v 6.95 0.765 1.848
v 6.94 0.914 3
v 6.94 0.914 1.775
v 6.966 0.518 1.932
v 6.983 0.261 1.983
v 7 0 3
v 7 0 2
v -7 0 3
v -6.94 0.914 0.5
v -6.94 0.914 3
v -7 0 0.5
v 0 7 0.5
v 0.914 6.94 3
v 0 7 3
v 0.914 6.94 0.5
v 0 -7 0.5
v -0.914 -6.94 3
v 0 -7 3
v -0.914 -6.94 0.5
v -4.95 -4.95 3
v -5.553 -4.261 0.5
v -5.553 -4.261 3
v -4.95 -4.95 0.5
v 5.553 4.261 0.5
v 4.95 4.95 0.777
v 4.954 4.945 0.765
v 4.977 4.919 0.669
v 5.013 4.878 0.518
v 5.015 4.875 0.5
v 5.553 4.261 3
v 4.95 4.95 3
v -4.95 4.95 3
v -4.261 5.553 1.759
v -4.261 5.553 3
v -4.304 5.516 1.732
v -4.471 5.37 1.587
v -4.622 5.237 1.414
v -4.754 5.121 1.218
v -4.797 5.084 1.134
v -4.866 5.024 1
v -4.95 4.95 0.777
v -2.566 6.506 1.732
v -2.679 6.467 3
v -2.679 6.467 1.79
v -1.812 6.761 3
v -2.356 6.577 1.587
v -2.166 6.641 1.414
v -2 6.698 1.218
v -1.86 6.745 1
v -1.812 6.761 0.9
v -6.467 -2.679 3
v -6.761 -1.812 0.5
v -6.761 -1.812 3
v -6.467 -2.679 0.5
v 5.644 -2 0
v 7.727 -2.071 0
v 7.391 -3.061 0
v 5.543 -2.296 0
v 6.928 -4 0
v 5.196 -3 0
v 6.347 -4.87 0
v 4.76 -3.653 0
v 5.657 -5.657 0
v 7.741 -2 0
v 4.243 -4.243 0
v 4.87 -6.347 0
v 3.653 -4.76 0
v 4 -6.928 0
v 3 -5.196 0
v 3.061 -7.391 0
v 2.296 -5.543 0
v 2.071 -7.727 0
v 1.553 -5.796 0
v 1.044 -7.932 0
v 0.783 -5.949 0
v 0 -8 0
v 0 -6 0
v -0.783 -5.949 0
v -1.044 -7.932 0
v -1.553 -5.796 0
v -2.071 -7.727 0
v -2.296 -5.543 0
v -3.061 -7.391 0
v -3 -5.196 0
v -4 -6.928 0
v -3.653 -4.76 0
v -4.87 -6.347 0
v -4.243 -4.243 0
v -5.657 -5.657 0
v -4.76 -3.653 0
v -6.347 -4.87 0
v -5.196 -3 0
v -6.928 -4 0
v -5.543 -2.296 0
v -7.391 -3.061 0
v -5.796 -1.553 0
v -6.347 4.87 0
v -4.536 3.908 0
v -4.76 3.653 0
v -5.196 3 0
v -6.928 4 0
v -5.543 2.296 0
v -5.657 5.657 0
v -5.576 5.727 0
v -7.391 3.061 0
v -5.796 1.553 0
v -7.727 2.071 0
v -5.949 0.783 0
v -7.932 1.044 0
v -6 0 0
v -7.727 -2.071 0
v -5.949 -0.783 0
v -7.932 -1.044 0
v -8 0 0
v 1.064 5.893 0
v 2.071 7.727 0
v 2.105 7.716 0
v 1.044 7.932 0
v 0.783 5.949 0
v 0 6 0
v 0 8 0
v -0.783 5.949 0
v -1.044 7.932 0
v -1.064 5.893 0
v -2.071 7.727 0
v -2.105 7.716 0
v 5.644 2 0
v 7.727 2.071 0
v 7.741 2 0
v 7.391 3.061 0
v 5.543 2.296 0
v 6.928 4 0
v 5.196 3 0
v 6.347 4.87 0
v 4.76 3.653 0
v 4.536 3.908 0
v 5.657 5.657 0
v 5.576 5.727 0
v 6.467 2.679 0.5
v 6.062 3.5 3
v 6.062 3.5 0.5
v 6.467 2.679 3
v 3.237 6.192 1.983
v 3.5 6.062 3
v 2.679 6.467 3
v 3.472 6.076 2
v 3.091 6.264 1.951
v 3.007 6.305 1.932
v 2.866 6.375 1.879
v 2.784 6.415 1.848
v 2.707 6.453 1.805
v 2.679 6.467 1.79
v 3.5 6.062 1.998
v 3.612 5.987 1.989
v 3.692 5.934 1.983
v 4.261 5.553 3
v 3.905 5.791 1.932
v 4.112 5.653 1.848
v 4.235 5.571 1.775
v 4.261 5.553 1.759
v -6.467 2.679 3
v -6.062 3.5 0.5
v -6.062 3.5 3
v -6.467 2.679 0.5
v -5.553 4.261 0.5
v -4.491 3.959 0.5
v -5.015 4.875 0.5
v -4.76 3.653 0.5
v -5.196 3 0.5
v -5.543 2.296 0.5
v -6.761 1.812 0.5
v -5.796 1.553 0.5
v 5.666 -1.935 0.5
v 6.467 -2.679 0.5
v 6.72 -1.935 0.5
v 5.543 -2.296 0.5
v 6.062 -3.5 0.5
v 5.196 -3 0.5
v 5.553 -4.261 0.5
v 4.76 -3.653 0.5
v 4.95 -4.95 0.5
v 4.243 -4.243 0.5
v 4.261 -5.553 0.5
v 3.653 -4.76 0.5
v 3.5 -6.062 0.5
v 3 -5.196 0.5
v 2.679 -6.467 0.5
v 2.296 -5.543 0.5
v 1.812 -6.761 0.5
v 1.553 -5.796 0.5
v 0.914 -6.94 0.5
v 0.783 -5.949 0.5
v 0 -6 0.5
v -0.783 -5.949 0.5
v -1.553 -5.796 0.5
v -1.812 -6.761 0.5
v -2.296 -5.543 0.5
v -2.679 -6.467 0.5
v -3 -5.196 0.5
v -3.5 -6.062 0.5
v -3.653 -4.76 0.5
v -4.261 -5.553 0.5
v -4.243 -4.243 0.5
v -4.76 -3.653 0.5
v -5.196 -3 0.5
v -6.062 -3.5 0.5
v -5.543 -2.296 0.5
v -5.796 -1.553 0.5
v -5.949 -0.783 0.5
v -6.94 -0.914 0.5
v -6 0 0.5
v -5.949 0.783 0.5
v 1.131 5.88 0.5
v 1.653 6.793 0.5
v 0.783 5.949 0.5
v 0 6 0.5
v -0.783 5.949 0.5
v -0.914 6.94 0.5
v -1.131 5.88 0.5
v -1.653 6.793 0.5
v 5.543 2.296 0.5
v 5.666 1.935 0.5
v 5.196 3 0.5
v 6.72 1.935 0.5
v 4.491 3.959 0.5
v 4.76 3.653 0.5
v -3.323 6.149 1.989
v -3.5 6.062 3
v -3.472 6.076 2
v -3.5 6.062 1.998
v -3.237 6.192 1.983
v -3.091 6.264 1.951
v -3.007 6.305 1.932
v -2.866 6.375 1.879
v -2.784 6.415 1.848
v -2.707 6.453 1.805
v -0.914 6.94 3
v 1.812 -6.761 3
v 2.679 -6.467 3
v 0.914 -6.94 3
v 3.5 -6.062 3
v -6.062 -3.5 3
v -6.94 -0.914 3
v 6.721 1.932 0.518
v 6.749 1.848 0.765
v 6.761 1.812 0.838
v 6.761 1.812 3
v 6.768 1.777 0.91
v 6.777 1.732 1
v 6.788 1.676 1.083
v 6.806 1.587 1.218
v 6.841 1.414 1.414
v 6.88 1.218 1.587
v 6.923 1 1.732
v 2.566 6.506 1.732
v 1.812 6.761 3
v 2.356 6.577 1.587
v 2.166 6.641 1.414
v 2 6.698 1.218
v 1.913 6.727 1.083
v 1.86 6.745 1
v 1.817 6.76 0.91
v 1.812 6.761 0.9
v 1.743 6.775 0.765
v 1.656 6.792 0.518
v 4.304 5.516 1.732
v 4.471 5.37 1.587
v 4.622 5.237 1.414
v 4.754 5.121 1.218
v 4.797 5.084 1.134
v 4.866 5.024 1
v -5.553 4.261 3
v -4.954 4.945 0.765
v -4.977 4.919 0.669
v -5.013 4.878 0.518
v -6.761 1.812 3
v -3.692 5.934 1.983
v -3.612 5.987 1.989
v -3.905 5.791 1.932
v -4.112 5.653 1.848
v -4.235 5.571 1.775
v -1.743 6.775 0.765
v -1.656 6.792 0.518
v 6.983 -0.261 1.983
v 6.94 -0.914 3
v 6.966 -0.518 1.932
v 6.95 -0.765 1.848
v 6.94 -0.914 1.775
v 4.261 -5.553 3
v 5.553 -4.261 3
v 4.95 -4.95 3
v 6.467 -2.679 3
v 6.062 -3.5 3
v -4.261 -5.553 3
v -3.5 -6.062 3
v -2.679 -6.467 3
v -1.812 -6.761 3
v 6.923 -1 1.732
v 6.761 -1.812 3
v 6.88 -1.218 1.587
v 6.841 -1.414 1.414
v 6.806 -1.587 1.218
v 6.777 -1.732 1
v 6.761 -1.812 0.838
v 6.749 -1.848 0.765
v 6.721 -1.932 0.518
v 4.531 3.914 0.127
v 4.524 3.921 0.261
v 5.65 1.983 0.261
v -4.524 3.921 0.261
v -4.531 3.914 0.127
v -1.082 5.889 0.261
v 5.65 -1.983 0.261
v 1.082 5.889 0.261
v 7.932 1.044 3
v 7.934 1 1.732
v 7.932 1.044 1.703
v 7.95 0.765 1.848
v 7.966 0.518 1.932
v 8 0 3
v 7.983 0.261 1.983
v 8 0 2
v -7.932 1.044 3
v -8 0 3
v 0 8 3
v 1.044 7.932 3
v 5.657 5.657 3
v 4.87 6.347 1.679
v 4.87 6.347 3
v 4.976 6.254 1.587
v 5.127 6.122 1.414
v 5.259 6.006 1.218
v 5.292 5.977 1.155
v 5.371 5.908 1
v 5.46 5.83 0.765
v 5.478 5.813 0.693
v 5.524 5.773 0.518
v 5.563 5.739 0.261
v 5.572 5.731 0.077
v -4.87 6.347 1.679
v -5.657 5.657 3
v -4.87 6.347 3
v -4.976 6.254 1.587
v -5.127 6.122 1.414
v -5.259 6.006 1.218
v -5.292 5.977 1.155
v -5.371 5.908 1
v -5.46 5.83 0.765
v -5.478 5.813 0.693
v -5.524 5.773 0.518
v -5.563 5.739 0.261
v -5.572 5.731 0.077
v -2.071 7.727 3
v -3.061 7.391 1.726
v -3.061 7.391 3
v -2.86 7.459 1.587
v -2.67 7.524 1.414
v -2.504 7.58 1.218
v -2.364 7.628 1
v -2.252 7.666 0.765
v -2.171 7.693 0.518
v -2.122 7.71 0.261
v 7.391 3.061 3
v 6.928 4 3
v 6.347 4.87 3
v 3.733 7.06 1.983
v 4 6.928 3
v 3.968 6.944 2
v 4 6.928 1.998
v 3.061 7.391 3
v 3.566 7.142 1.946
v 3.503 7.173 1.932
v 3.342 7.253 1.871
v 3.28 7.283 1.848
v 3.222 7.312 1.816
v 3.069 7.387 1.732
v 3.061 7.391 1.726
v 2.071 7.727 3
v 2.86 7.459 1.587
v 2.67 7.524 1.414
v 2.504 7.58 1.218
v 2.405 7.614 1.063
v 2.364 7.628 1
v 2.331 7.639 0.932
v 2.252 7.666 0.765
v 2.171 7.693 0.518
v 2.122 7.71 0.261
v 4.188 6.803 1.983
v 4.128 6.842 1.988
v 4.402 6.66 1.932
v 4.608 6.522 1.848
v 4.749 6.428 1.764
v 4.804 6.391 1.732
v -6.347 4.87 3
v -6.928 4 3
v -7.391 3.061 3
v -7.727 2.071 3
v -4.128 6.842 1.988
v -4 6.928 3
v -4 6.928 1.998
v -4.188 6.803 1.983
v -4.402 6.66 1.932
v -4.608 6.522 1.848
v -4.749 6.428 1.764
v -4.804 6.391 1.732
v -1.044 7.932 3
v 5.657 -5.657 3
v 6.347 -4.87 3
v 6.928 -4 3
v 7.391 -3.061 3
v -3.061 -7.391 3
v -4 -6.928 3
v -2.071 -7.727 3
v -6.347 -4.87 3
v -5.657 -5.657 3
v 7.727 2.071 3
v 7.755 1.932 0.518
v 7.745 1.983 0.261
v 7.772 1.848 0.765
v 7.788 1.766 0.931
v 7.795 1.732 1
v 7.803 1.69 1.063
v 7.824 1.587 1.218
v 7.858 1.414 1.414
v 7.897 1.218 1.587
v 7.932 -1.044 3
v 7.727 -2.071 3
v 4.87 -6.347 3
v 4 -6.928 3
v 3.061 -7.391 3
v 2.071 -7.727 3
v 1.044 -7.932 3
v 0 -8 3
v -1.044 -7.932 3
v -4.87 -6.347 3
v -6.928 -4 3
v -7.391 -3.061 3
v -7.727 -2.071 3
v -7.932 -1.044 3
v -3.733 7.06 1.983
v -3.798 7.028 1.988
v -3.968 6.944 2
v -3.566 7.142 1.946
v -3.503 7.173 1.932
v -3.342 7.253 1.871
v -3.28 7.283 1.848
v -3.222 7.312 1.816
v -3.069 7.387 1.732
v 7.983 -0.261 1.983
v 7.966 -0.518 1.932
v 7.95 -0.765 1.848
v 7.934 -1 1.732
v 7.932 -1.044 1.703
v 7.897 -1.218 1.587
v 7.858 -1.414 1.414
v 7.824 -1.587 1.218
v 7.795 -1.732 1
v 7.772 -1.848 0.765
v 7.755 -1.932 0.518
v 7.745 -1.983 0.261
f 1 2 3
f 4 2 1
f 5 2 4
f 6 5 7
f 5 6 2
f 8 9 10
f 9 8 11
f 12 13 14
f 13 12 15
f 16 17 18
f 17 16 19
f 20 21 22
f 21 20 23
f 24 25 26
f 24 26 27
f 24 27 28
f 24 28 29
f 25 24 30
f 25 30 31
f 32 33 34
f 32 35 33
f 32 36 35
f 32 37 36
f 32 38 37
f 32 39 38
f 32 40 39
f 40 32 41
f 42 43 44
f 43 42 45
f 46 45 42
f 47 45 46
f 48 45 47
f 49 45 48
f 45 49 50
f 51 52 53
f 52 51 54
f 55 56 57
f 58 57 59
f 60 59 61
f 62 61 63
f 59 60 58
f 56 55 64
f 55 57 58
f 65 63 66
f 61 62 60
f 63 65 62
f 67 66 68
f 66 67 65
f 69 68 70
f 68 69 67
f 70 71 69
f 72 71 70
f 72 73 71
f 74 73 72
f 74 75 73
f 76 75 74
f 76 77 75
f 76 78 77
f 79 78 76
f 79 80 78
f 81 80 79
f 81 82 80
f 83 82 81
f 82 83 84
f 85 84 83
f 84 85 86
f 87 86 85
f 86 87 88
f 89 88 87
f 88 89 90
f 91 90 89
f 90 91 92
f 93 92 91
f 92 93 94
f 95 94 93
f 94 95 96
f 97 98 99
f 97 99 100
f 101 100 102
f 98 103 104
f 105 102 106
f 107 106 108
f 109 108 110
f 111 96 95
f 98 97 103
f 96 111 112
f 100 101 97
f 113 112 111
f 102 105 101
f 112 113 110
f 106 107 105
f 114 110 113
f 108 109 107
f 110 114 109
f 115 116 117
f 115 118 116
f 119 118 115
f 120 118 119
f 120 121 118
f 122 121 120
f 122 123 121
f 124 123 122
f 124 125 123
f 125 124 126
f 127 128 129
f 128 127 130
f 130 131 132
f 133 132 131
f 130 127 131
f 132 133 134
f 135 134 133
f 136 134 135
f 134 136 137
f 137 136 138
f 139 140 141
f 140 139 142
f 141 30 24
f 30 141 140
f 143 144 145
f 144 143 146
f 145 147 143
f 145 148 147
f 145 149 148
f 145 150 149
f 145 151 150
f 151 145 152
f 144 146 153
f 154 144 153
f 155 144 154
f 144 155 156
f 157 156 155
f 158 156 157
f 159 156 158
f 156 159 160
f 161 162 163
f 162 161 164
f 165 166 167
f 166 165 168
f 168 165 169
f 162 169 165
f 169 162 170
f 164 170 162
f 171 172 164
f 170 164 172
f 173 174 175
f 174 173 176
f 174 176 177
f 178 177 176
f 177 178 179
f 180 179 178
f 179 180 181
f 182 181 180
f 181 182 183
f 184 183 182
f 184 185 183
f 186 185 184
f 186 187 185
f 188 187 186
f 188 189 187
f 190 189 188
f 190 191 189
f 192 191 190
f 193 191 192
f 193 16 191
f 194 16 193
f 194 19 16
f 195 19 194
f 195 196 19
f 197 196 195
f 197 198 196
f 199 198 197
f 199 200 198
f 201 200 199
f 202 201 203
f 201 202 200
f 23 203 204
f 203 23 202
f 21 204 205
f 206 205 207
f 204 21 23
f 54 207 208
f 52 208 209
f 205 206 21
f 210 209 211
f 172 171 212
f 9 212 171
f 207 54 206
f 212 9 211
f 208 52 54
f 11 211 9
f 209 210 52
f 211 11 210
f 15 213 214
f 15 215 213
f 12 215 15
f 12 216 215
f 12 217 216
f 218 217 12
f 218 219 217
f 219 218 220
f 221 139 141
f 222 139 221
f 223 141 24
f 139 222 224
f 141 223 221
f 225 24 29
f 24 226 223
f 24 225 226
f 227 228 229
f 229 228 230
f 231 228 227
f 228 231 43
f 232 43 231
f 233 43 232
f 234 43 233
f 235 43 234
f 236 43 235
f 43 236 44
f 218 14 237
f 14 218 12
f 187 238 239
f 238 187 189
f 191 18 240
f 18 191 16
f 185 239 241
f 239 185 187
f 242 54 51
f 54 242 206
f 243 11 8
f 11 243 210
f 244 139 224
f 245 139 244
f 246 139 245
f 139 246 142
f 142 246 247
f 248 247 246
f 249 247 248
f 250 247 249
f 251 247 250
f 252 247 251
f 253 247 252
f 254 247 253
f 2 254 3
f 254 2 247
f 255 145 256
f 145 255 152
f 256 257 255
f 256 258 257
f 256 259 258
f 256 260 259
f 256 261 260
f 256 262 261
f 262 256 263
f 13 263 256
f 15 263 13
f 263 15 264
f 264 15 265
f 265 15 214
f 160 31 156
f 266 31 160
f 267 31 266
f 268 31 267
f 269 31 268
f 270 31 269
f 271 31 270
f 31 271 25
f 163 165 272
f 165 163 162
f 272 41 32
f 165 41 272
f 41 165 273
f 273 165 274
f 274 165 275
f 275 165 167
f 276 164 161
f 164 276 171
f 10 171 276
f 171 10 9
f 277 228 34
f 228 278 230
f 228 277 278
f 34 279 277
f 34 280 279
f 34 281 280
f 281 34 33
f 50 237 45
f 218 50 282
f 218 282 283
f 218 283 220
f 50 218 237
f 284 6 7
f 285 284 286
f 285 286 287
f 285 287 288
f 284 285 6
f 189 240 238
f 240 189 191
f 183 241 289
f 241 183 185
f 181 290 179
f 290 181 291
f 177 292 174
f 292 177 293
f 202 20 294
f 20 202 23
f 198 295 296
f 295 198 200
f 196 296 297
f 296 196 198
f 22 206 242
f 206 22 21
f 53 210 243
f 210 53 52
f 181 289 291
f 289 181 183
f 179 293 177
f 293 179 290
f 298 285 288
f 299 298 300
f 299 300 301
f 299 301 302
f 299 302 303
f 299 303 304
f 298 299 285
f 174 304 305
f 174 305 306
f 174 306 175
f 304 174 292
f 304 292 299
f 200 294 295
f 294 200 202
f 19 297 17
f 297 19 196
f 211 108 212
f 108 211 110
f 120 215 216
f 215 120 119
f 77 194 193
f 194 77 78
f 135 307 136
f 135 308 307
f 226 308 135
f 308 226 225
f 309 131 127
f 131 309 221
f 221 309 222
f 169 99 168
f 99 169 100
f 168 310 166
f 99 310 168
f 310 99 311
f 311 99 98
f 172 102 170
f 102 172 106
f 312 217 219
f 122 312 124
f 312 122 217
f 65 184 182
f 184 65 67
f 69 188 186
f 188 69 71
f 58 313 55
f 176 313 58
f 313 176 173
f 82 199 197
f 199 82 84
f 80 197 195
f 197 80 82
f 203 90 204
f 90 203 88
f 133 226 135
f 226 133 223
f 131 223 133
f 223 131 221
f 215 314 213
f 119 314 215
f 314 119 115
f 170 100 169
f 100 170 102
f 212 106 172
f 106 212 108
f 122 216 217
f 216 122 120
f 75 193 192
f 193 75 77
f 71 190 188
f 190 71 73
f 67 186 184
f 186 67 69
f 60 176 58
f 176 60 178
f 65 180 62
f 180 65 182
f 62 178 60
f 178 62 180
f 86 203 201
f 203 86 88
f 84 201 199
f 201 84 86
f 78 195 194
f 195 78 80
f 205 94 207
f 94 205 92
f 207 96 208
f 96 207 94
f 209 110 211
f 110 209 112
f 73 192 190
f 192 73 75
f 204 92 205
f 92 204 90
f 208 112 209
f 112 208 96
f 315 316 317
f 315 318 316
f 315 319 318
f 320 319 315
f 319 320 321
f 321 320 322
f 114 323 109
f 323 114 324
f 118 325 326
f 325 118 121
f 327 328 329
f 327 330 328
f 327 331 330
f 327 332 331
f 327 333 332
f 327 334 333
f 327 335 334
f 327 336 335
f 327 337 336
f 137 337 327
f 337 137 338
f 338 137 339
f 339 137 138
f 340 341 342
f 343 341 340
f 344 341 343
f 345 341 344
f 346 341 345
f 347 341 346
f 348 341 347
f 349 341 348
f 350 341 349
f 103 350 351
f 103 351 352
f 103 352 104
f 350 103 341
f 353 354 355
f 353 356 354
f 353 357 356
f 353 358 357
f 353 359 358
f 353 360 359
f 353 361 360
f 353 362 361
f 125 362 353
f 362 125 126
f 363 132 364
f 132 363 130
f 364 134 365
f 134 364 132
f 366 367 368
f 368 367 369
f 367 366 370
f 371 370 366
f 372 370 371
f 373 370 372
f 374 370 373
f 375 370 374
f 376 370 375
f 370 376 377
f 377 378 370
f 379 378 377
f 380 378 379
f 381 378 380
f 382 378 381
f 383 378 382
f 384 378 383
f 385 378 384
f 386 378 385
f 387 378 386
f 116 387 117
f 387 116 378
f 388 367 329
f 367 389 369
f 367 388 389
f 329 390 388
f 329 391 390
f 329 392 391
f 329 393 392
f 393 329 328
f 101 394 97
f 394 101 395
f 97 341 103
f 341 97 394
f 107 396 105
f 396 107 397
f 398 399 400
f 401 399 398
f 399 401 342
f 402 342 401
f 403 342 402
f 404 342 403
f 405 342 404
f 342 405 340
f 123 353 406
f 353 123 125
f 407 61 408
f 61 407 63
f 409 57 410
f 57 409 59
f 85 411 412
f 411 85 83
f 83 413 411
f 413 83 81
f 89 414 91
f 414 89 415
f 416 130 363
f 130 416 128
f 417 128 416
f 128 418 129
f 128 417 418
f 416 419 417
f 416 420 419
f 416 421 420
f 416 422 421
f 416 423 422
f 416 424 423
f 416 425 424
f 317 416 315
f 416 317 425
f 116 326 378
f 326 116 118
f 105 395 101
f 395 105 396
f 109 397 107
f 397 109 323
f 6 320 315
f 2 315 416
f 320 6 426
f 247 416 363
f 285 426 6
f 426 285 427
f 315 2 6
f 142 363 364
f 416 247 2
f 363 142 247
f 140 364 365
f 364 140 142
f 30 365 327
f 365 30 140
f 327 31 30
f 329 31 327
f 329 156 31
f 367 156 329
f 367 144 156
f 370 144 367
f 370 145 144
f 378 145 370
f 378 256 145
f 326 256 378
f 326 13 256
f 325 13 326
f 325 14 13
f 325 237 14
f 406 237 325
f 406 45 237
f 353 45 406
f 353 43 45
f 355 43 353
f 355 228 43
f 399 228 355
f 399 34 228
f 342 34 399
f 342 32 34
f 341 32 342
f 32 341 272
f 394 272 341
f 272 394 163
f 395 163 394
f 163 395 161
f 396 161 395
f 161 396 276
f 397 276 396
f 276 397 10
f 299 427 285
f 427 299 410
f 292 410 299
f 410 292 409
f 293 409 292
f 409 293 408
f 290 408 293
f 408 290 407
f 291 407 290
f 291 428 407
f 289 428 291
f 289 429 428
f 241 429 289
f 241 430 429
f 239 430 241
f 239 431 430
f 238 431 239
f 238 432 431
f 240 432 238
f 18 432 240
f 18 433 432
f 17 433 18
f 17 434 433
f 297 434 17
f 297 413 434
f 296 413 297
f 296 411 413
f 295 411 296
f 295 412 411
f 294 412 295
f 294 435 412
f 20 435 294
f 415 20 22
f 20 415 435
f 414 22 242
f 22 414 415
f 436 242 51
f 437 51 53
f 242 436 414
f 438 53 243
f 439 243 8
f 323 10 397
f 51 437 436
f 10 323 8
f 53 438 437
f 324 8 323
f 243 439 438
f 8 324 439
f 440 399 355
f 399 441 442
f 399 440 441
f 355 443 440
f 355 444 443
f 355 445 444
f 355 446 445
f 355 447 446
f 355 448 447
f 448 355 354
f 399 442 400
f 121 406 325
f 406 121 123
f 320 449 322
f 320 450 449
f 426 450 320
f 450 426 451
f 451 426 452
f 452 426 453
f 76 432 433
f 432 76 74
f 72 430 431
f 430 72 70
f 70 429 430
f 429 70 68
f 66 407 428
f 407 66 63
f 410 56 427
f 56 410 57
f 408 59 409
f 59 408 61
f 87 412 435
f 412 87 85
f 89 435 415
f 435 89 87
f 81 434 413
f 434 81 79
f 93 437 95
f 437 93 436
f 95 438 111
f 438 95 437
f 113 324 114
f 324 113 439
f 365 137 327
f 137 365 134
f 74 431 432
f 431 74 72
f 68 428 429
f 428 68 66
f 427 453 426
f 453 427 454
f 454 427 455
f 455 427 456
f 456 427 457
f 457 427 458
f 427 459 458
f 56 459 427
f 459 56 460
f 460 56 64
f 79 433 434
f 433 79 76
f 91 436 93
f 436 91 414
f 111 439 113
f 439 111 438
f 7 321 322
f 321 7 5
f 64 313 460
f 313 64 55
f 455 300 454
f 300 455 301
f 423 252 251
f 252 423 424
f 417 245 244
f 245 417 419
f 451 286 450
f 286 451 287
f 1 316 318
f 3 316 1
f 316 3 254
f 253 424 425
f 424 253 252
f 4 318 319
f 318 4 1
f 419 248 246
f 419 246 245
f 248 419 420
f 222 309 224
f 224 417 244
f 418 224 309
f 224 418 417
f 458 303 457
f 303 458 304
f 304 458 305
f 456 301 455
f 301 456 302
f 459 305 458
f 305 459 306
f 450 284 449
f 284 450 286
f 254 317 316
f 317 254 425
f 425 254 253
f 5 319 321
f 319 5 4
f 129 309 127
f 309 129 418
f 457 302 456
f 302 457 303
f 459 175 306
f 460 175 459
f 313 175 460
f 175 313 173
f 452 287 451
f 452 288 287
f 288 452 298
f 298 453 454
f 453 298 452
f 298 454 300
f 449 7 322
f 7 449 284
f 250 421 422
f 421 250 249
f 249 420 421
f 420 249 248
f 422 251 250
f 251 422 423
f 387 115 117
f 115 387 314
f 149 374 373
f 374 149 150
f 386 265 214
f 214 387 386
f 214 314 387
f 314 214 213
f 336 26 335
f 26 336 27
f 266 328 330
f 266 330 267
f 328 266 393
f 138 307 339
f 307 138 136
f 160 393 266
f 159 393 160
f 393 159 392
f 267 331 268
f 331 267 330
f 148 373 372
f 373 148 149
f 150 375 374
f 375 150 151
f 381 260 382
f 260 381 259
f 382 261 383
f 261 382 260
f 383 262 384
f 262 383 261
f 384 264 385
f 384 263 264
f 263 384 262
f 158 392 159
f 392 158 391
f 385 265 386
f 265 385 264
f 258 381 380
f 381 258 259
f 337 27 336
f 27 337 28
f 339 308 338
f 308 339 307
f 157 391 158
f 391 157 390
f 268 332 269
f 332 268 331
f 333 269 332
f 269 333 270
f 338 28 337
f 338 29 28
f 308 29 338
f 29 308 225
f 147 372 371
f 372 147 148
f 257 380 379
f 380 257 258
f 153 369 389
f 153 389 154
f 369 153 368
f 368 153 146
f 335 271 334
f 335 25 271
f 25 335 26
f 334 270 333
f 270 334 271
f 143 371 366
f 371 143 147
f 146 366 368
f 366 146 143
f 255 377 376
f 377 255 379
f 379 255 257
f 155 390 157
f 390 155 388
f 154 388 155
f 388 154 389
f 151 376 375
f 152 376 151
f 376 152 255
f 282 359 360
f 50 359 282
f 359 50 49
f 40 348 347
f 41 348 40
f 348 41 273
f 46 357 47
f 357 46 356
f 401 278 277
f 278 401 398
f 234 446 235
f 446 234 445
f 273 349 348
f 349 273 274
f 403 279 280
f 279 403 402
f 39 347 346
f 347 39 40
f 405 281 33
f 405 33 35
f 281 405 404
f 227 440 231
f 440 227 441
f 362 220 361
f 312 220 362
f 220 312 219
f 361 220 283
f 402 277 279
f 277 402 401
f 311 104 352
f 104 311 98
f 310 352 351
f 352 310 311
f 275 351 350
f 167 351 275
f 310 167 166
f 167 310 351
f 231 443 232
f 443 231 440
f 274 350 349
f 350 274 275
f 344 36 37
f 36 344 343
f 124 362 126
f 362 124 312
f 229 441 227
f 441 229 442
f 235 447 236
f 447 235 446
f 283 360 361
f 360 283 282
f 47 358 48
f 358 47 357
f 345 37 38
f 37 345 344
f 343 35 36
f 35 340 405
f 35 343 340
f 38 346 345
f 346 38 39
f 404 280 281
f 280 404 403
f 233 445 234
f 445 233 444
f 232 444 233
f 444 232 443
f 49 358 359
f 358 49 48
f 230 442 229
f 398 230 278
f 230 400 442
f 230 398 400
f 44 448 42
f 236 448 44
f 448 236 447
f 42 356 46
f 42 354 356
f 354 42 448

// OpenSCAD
// file: ../build_environments.scad
// build_environments.scad: modules to build level sections
//

module pool(diameter=10.0, wall_height=2.0, step_width=3.0, connections=[])
{
    difference() {
        union() {
        difference() {
            cylinder(h=0.5,r1=diameter+step_width,r2=diameter+step_width,$fn=48);
            translate([0,0,-0.1])
                cylinder(h=0.7,r1=diameter,r2=diameter,$fn=48);
        }
        difference() {
            cylinder(h=wall_height,r1=diameter+step_width+1.0,r2=diameter+step_width+1.0,$fn=48);
            translate([0,0,-0.1])
                cylinder(h=wall_height+0.2,r1=diameter+step_width,r2=diameter+step_width,$fn=48);
        }
        }
    
        for (c = connections)
        {
            rotate([0,90,0]) {
                angle = atan2(c[1],c[0]);
                rotate([-angle,0,0]) {
                    cylinder(h=diameter+5.0,r1=c[2],r2=c[2],$fn=48);
                }
            }
        }
    }
}

module straight(length=10.0, width=2.0, dy1=0.0, dy2=0.0, dz=0.0)
{
    dims = [0, 0, 0, 0, 0, (dz/length)];
    matrix = [
        [ 1, dims[0], dims[1], 0 ],
        [ dims[2], 1, dims[4], 0 ],
        [ dims[5], dims[3], 1, 0 ],
        [ 0, 0, 0, 1 ]
    ];
    multmatrix(matrix)
    difference() {
        translate([dy1,0,0])
        union() {
            rotate([0,90,0]) {
                difference() {
                    cylinder(h=(length-dy1-dy2),r1=width+1.0,r2=width+1.0,$fn=24);
                    translate([0,0,-0.1])
                        cylinder(h=(length-dy1-dy2+0.2),r1=width,r2=width,$fn=24);
                }
                difference() {
                    cylinder(h=1.0,r1=width+2.0,r2=width+2.0,$fn=24);
                    translate([0,0,-0.1])
                        cylinder(h=1.2,r1=width,r2=width,$fn=24);
                }
                translate([0,0,(length-dy1-dy2)-1.0]) {
                    difference() {
                        cylinder(h=1.0,r1=width+2.0,r2=width+2.0,$fn=24);
                        translate([0,0,-0.1])
                            cylinder(h=1.2,r1=width,r2=width,$fn=24);
                    }
                }
            }
        }
        translate([0,0,-(2*width+4.0)/2])
            cube([3*length,3*length,2*width+4.0],center=true);
    }
}

module curve(p0=[0,0], center=[0,0], dir=1, angle=0.0, width=2.0)
{
    radius = sqrt((p0[0]-center[0])*(p0[0]-center[0]) + (p0[1]-center[1])*(p0[1]-center[1]));
    if (dir == 0) {
        difference() {
            rotate([0,0,-90])
            difference() {
                rotate_extrude(angle = angle, convexity = 10, $fn=32)
                    translate([radius, 0, 0])
                        circle(r = width+1.0,$fn=24);
                rotate([0,0,-1.0])
                    rotate_extrude(angle = angle+2.0, convexity = 10, $fn=32)
                        translate([radius, 0, 0])
                            circle(r = width,$fn=24);
            }
            translate([0,0,-(2*width+4.0)/2])
                cube([5*radius,5*radius,2*width+4.0],center=true);
        }
    }
    else {
        difference() {
            rotate([0,0,90])
            difference() {
                rotate_extrude(angle = -angle, convexity = 10, $fn=32)
                    translate([radius, 0, 0])
                        circle(r = width+1.0,$fn=24);
                rotate([0,0,1.0])
                    rotate_extrude(angle = -angle-2.0, convexity = 10, $fn=32)
                        translate([radius, 0, 0])
                            circle(r = width,$fn=24);
            }
            translate([0,0,-(2*width+4.0)/2])
                cube([5*radius,5*radius,2*width+4.0],center=true);
        }
    }

}

// test pool
//pool(diameter=12.0000, wall_height=3.0000, step_width=3.0000, connections=[[0.0000,-26.0000,2.0000], [23.6074,0.0000,2.0000]]);

// test straight, slope
//straight(length=26.0000, width=2.0000, dy1=11.8322, dy2=6.7082, dz=0.0000);
//straight(length=29.1549, width=12.0000, dy1=0.0000, dy2=0.0000, dz=-15.0000);

// test curve
//curve(p0=[23.6074, 0.0000], center=[23.6074, 5.0000], dir=0, angle=60.1011, width=2.0000);
//curve(p0=[33.6426, 12.4219], center=[37.9771, 9.9295], dir=1, angle=120.4627, width=2.0000);
// main file
use <../build_environments.scad>;
pool(diameter=6.0000, wall_height=3.0000, step_width=1.0000, connections=[[16.0000,0.0000,2.0000], [8.0000,14.0000,2.0000], [-8.0000,14.0000,2.0000]]);
